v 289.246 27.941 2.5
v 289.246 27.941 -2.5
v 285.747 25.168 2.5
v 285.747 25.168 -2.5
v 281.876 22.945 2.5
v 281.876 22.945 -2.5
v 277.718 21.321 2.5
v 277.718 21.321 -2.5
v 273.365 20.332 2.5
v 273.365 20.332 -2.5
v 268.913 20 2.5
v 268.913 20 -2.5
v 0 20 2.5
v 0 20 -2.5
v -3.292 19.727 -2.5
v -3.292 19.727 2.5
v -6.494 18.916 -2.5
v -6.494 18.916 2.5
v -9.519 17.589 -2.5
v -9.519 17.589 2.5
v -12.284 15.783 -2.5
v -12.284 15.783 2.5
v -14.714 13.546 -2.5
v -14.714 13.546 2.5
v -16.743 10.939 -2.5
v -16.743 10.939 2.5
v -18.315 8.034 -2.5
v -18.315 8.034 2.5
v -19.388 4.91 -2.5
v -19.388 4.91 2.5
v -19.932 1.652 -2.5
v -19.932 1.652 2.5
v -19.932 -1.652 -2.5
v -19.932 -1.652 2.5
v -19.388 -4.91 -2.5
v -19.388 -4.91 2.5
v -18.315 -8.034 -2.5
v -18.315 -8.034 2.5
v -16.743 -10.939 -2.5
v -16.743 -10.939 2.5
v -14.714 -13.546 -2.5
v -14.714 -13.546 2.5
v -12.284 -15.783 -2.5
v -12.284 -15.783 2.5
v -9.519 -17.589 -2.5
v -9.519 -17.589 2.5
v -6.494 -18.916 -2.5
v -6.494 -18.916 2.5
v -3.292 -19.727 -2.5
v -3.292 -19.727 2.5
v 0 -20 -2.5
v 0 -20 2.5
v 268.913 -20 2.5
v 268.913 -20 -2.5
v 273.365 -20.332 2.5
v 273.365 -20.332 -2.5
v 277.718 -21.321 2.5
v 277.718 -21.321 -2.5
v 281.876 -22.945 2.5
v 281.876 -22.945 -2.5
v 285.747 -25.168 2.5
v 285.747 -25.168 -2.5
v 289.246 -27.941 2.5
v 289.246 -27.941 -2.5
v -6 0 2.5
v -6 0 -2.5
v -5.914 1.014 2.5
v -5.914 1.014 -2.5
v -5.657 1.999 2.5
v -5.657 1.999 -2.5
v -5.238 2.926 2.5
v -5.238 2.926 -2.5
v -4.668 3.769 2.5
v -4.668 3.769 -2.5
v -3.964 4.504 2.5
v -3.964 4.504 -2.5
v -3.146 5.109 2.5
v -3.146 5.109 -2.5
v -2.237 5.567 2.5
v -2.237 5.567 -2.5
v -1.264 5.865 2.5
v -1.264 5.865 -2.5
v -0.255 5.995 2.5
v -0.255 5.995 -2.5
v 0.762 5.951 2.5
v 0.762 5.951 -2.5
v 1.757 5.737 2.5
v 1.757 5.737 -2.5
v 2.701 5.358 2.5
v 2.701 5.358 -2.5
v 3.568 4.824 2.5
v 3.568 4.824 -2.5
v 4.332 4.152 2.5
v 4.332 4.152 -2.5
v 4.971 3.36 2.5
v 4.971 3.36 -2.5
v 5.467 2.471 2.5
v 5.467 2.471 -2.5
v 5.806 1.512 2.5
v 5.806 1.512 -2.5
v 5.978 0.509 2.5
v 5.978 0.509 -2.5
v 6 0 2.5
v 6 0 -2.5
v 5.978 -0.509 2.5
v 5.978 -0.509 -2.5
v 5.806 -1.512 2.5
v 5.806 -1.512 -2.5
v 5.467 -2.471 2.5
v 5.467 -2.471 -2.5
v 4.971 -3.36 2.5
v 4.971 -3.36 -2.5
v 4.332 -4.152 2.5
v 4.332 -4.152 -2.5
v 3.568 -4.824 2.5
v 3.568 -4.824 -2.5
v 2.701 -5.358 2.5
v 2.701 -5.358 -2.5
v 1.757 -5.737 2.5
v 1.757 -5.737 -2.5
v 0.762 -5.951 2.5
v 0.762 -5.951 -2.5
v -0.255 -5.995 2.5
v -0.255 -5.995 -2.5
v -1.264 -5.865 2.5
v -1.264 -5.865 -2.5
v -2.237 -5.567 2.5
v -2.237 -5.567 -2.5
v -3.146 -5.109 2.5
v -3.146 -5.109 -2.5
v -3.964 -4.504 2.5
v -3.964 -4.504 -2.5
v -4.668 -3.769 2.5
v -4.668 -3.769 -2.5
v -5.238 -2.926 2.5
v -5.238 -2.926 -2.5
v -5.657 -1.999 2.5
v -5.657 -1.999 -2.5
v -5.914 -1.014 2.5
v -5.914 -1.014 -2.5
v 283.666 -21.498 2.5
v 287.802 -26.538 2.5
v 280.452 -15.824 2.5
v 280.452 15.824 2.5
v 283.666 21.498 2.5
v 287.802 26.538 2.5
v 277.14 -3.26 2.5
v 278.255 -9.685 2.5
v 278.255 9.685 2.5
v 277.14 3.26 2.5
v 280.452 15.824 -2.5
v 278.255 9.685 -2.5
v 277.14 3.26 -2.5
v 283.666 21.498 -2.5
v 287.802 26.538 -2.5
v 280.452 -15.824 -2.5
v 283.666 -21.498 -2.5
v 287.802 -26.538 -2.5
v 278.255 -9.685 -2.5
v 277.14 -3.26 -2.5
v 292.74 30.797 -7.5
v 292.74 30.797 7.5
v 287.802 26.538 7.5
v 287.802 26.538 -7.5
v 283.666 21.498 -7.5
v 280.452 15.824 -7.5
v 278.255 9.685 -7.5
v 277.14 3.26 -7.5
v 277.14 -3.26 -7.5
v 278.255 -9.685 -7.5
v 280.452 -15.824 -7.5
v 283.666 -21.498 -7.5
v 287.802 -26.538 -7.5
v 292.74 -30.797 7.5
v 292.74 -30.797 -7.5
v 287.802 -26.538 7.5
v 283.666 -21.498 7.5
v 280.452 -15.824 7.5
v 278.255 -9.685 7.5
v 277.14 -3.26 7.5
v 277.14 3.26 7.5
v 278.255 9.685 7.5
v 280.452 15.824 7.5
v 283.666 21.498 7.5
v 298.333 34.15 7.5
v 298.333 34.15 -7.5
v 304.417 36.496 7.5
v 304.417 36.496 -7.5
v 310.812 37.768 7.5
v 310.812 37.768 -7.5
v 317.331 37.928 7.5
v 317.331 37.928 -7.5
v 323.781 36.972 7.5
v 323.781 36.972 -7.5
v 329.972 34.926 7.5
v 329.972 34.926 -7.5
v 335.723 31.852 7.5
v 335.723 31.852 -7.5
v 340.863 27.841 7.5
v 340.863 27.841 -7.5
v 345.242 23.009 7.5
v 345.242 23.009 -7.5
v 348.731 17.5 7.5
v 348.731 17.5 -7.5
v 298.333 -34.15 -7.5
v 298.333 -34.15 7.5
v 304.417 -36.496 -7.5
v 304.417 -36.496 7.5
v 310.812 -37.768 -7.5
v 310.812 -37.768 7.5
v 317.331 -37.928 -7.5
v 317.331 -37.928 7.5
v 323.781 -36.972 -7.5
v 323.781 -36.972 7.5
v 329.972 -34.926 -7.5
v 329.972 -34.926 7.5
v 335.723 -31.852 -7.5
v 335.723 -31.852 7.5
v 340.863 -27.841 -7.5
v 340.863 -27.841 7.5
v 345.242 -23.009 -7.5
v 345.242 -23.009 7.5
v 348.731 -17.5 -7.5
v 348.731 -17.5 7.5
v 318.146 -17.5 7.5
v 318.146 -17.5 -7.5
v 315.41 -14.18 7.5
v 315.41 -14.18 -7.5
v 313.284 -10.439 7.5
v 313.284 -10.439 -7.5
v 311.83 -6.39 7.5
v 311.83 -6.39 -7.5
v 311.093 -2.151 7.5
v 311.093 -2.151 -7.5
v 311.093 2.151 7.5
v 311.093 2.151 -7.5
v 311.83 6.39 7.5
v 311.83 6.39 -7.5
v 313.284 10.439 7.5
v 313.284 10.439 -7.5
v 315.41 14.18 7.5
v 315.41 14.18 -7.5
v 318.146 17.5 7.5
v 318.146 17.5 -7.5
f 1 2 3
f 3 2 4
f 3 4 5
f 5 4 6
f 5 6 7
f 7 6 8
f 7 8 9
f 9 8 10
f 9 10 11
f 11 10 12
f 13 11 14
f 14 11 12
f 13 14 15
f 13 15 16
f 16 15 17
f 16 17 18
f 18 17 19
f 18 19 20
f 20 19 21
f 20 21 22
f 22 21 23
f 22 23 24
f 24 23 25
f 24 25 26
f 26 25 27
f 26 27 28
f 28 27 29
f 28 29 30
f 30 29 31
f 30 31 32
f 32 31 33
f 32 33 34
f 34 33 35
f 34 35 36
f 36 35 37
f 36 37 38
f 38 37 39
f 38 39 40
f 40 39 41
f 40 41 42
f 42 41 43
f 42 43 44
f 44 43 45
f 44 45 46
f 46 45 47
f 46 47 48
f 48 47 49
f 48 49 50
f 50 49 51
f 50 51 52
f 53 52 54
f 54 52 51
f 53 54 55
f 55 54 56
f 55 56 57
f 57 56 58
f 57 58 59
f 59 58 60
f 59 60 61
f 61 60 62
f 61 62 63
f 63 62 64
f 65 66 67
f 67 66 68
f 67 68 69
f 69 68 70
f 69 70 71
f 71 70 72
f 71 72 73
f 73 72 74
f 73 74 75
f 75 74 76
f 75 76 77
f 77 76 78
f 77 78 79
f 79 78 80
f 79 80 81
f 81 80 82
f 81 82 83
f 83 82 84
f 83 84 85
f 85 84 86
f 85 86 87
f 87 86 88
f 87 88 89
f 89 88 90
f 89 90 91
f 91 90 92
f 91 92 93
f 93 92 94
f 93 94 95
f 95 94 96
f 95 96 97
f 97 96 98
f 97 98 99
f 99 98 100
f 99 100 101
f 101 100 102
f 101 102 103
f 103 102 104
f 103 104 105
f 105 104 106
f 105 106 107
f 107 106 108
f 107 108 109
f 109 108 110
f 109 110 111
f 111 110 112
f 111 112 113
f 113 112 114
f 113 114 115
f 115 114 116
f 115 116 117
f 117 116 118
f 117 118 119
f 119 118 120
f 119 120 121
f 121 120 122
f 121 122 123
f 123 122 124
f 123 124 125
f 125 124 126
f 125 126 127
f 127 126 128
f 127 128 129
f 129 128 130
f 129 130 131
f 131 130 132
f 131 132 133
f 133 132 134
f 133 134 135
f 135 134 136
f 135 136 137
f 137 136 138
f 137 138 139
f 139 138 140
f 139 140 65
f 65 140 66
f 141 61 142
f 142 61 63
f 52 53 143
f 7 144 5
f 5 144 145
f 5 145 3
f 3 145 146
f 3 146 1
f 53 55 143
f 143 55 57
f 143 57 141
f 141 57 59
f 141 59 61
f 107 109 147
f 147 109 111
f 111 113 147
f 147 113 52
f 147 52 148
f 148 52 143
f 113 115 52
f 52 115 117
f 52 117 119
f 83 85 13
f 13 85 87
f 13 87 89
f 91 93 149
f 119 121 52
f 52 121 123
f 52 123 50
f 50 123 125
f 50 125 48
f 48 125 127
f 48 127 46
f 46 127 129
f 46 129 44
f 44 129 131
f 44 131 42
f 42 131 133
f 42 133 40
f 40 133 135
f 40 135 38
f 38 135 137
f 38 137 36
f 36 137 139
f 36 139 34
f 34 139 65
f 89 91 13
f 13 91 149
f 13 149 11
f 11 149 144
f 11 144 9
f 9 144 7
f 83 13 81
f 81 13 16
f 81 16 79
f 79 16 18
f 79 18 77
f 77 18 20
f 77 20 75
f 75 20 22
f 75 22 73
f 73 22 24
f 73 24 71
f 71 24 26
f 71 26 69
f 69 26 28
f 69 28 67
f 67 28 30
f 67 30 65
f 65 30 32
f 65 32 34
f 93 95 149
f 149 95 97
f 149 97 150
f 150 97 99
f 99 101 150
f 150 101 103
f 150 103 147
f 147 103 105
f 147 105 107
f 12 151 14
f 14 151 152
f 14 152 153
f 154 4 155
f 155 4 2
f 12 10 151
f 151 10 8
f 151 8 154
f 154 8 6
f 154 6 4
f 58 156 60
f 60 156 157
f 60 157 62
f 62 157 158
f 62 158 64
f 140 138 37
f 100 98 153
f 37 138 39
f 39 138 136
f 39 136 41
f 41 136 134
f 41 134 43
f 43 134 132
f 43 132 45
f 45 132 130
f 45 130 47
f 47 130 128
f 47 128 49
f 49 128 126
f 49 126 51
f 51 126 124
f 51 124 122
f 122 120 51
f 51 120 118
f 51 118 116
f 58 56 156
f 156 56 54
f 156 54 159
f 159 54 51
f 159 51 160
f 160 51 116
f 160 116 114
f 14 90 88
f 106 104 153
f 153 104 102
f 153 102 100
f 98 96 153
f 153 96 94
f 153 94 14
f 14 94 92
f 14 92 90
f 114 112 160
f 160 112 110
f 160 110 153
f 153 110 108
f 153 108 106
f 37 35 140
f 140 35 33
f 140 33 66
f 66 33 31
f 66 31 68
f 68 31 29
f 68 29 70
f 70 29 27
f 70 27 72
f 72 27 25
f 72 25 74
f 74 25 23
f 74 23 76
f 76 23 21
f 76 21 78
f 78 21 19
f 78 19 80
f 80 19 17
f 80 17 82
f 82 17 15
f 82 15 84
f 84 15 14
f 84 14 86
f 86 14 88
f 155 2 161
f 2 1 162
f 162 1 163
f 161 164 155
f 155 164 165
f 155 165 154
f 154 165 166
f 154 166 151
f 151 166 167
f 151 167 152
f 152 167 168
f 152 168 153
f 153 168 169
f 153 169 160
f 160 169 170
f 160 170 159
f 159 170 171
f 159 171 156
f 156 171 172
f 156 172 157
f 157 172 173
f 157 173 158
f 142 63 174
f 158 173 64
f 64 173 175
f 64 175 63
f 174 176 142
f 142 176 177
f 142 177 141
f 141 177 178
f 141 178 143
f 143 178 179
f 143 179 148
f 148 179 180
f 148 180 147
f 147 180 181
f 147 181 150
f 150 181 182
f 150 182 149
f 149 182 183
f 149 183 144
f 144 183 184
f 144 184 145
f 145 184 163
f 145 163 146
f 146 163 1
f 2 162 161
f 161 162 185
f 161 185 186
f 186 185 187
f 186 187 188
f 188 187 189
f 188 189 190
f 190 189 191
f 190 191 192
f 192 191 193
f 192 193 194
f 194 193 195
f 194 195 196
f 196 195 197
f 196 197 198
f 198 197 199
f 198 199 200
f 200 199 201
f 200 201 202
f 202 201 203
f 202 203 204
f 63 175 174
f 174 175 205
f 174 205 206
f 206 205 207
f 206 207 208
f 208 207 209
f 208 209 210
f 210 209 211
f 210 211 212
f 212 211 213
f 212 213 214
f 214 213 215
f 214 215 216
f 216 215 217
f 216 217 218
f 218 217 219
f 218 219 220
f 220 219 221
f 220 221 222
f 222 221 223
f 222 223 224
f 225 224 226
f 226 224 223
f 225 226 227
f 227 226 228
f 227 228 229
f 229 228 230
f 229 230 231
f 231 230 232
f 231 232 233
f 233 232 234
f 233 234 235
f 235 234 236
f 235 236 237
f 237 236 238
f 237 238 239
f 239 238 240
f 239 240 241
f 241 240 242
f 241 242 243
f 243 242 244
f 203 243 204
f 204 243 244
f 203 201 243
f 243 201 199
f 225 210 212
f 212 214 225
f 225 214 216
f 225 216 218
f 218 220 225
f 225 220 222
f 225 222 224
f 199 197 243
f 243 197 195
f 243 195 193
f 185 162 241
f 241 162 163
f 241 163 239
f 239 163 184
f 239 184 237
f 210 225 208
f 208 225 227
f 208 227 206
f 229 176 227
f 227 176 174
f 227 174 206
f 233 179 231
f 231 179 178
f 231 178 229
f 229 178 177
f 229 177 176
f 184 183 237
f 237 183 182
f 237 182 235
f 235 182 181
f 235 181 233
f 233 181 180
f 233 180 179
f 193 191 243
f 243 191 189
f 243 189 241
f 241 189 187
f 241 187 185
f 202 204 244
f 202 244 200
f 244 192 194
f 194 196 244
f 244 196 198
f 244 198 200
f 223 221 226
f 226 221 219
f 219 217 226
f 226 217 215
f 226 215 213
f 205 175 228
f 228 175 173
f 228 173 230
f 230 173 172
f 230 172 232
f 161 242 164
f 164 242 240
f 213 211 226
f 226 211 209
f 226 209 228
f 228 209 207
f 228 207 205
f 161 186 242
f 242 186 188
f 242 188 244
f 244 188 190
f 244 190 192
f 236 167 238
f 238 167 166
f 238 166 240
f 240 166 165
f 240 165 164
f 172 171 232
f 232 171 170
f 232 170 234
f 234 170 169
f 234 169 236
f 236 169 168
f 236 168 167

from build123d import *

# Parameters (mm, degrees)
SKETCH1_R           = 6
BOSS_EXTRUDE1_DEPTH = 2.5
BOSS_EXTRUDE2_DEPTH = 7.5


with BuildPart() as part:
    # Sketch1 → Boss-Extrude1 (new, symmetric)
    with BuildSketch(Plane.XY):
        with BuildLine():
            Line((268.913125513, 20), (0, 20))
            ThreePointArc((0, 20), (-20, 0), (0, -20))
            Line((0, -20), (268.913125513, -20))
            ThreePointArc((268.913125513, -20), (279.827228639, -22.055727726), (289.245570139, -27.941176471))
            ThreePointArc((289.245570139, -27.941176471), (277, 0), (289.245570139, 27.941176471))
            ThreePointArc((289.245570139, 27.941176471), (279.827228639, 22.055727726), (268.913125513, 20))
        make_face()
        Circle(SKETCH1_R, mode=Mode.SUBTRACT)
    extrude(amount=BOSS_EXTRUDE1_DEPTH, both=True)

    # Sketch1<4> → Boss-Extrude2 (add, symmetric)
    with BuildSketch(Plane.XY):
        with BuildLine():
            ThreePointArc((348.730549951, 17.5), (321.56956349, 37.427808319), (289.245570139, 27.941176471))
            ThreePointArc((289.245570139, 27.941176471), (277, 0), (289.245570139, -27.941176471))
            ThreePointArc((289.245570139, -27.941176471), (321.56956349, -37.427808319), (348.730549951, -17.5))
            Line((348.730549951, -17.5), (318.146428929, -17.5))
            ThreePointArc((318.146428929, -17.5), (312.855462018, -9.451474044), (311, 0))
            ThreePointArc((311, 0), (312.855462018, 9.451474044), (318.146428929, 17.5))
            Line((318.146428929, 17.5), (348.730549951, 17.5))
        make_face()
    extrude(amount=BOSS_EXTRUDE2_DEPTH, both=True)


solid = part.part
